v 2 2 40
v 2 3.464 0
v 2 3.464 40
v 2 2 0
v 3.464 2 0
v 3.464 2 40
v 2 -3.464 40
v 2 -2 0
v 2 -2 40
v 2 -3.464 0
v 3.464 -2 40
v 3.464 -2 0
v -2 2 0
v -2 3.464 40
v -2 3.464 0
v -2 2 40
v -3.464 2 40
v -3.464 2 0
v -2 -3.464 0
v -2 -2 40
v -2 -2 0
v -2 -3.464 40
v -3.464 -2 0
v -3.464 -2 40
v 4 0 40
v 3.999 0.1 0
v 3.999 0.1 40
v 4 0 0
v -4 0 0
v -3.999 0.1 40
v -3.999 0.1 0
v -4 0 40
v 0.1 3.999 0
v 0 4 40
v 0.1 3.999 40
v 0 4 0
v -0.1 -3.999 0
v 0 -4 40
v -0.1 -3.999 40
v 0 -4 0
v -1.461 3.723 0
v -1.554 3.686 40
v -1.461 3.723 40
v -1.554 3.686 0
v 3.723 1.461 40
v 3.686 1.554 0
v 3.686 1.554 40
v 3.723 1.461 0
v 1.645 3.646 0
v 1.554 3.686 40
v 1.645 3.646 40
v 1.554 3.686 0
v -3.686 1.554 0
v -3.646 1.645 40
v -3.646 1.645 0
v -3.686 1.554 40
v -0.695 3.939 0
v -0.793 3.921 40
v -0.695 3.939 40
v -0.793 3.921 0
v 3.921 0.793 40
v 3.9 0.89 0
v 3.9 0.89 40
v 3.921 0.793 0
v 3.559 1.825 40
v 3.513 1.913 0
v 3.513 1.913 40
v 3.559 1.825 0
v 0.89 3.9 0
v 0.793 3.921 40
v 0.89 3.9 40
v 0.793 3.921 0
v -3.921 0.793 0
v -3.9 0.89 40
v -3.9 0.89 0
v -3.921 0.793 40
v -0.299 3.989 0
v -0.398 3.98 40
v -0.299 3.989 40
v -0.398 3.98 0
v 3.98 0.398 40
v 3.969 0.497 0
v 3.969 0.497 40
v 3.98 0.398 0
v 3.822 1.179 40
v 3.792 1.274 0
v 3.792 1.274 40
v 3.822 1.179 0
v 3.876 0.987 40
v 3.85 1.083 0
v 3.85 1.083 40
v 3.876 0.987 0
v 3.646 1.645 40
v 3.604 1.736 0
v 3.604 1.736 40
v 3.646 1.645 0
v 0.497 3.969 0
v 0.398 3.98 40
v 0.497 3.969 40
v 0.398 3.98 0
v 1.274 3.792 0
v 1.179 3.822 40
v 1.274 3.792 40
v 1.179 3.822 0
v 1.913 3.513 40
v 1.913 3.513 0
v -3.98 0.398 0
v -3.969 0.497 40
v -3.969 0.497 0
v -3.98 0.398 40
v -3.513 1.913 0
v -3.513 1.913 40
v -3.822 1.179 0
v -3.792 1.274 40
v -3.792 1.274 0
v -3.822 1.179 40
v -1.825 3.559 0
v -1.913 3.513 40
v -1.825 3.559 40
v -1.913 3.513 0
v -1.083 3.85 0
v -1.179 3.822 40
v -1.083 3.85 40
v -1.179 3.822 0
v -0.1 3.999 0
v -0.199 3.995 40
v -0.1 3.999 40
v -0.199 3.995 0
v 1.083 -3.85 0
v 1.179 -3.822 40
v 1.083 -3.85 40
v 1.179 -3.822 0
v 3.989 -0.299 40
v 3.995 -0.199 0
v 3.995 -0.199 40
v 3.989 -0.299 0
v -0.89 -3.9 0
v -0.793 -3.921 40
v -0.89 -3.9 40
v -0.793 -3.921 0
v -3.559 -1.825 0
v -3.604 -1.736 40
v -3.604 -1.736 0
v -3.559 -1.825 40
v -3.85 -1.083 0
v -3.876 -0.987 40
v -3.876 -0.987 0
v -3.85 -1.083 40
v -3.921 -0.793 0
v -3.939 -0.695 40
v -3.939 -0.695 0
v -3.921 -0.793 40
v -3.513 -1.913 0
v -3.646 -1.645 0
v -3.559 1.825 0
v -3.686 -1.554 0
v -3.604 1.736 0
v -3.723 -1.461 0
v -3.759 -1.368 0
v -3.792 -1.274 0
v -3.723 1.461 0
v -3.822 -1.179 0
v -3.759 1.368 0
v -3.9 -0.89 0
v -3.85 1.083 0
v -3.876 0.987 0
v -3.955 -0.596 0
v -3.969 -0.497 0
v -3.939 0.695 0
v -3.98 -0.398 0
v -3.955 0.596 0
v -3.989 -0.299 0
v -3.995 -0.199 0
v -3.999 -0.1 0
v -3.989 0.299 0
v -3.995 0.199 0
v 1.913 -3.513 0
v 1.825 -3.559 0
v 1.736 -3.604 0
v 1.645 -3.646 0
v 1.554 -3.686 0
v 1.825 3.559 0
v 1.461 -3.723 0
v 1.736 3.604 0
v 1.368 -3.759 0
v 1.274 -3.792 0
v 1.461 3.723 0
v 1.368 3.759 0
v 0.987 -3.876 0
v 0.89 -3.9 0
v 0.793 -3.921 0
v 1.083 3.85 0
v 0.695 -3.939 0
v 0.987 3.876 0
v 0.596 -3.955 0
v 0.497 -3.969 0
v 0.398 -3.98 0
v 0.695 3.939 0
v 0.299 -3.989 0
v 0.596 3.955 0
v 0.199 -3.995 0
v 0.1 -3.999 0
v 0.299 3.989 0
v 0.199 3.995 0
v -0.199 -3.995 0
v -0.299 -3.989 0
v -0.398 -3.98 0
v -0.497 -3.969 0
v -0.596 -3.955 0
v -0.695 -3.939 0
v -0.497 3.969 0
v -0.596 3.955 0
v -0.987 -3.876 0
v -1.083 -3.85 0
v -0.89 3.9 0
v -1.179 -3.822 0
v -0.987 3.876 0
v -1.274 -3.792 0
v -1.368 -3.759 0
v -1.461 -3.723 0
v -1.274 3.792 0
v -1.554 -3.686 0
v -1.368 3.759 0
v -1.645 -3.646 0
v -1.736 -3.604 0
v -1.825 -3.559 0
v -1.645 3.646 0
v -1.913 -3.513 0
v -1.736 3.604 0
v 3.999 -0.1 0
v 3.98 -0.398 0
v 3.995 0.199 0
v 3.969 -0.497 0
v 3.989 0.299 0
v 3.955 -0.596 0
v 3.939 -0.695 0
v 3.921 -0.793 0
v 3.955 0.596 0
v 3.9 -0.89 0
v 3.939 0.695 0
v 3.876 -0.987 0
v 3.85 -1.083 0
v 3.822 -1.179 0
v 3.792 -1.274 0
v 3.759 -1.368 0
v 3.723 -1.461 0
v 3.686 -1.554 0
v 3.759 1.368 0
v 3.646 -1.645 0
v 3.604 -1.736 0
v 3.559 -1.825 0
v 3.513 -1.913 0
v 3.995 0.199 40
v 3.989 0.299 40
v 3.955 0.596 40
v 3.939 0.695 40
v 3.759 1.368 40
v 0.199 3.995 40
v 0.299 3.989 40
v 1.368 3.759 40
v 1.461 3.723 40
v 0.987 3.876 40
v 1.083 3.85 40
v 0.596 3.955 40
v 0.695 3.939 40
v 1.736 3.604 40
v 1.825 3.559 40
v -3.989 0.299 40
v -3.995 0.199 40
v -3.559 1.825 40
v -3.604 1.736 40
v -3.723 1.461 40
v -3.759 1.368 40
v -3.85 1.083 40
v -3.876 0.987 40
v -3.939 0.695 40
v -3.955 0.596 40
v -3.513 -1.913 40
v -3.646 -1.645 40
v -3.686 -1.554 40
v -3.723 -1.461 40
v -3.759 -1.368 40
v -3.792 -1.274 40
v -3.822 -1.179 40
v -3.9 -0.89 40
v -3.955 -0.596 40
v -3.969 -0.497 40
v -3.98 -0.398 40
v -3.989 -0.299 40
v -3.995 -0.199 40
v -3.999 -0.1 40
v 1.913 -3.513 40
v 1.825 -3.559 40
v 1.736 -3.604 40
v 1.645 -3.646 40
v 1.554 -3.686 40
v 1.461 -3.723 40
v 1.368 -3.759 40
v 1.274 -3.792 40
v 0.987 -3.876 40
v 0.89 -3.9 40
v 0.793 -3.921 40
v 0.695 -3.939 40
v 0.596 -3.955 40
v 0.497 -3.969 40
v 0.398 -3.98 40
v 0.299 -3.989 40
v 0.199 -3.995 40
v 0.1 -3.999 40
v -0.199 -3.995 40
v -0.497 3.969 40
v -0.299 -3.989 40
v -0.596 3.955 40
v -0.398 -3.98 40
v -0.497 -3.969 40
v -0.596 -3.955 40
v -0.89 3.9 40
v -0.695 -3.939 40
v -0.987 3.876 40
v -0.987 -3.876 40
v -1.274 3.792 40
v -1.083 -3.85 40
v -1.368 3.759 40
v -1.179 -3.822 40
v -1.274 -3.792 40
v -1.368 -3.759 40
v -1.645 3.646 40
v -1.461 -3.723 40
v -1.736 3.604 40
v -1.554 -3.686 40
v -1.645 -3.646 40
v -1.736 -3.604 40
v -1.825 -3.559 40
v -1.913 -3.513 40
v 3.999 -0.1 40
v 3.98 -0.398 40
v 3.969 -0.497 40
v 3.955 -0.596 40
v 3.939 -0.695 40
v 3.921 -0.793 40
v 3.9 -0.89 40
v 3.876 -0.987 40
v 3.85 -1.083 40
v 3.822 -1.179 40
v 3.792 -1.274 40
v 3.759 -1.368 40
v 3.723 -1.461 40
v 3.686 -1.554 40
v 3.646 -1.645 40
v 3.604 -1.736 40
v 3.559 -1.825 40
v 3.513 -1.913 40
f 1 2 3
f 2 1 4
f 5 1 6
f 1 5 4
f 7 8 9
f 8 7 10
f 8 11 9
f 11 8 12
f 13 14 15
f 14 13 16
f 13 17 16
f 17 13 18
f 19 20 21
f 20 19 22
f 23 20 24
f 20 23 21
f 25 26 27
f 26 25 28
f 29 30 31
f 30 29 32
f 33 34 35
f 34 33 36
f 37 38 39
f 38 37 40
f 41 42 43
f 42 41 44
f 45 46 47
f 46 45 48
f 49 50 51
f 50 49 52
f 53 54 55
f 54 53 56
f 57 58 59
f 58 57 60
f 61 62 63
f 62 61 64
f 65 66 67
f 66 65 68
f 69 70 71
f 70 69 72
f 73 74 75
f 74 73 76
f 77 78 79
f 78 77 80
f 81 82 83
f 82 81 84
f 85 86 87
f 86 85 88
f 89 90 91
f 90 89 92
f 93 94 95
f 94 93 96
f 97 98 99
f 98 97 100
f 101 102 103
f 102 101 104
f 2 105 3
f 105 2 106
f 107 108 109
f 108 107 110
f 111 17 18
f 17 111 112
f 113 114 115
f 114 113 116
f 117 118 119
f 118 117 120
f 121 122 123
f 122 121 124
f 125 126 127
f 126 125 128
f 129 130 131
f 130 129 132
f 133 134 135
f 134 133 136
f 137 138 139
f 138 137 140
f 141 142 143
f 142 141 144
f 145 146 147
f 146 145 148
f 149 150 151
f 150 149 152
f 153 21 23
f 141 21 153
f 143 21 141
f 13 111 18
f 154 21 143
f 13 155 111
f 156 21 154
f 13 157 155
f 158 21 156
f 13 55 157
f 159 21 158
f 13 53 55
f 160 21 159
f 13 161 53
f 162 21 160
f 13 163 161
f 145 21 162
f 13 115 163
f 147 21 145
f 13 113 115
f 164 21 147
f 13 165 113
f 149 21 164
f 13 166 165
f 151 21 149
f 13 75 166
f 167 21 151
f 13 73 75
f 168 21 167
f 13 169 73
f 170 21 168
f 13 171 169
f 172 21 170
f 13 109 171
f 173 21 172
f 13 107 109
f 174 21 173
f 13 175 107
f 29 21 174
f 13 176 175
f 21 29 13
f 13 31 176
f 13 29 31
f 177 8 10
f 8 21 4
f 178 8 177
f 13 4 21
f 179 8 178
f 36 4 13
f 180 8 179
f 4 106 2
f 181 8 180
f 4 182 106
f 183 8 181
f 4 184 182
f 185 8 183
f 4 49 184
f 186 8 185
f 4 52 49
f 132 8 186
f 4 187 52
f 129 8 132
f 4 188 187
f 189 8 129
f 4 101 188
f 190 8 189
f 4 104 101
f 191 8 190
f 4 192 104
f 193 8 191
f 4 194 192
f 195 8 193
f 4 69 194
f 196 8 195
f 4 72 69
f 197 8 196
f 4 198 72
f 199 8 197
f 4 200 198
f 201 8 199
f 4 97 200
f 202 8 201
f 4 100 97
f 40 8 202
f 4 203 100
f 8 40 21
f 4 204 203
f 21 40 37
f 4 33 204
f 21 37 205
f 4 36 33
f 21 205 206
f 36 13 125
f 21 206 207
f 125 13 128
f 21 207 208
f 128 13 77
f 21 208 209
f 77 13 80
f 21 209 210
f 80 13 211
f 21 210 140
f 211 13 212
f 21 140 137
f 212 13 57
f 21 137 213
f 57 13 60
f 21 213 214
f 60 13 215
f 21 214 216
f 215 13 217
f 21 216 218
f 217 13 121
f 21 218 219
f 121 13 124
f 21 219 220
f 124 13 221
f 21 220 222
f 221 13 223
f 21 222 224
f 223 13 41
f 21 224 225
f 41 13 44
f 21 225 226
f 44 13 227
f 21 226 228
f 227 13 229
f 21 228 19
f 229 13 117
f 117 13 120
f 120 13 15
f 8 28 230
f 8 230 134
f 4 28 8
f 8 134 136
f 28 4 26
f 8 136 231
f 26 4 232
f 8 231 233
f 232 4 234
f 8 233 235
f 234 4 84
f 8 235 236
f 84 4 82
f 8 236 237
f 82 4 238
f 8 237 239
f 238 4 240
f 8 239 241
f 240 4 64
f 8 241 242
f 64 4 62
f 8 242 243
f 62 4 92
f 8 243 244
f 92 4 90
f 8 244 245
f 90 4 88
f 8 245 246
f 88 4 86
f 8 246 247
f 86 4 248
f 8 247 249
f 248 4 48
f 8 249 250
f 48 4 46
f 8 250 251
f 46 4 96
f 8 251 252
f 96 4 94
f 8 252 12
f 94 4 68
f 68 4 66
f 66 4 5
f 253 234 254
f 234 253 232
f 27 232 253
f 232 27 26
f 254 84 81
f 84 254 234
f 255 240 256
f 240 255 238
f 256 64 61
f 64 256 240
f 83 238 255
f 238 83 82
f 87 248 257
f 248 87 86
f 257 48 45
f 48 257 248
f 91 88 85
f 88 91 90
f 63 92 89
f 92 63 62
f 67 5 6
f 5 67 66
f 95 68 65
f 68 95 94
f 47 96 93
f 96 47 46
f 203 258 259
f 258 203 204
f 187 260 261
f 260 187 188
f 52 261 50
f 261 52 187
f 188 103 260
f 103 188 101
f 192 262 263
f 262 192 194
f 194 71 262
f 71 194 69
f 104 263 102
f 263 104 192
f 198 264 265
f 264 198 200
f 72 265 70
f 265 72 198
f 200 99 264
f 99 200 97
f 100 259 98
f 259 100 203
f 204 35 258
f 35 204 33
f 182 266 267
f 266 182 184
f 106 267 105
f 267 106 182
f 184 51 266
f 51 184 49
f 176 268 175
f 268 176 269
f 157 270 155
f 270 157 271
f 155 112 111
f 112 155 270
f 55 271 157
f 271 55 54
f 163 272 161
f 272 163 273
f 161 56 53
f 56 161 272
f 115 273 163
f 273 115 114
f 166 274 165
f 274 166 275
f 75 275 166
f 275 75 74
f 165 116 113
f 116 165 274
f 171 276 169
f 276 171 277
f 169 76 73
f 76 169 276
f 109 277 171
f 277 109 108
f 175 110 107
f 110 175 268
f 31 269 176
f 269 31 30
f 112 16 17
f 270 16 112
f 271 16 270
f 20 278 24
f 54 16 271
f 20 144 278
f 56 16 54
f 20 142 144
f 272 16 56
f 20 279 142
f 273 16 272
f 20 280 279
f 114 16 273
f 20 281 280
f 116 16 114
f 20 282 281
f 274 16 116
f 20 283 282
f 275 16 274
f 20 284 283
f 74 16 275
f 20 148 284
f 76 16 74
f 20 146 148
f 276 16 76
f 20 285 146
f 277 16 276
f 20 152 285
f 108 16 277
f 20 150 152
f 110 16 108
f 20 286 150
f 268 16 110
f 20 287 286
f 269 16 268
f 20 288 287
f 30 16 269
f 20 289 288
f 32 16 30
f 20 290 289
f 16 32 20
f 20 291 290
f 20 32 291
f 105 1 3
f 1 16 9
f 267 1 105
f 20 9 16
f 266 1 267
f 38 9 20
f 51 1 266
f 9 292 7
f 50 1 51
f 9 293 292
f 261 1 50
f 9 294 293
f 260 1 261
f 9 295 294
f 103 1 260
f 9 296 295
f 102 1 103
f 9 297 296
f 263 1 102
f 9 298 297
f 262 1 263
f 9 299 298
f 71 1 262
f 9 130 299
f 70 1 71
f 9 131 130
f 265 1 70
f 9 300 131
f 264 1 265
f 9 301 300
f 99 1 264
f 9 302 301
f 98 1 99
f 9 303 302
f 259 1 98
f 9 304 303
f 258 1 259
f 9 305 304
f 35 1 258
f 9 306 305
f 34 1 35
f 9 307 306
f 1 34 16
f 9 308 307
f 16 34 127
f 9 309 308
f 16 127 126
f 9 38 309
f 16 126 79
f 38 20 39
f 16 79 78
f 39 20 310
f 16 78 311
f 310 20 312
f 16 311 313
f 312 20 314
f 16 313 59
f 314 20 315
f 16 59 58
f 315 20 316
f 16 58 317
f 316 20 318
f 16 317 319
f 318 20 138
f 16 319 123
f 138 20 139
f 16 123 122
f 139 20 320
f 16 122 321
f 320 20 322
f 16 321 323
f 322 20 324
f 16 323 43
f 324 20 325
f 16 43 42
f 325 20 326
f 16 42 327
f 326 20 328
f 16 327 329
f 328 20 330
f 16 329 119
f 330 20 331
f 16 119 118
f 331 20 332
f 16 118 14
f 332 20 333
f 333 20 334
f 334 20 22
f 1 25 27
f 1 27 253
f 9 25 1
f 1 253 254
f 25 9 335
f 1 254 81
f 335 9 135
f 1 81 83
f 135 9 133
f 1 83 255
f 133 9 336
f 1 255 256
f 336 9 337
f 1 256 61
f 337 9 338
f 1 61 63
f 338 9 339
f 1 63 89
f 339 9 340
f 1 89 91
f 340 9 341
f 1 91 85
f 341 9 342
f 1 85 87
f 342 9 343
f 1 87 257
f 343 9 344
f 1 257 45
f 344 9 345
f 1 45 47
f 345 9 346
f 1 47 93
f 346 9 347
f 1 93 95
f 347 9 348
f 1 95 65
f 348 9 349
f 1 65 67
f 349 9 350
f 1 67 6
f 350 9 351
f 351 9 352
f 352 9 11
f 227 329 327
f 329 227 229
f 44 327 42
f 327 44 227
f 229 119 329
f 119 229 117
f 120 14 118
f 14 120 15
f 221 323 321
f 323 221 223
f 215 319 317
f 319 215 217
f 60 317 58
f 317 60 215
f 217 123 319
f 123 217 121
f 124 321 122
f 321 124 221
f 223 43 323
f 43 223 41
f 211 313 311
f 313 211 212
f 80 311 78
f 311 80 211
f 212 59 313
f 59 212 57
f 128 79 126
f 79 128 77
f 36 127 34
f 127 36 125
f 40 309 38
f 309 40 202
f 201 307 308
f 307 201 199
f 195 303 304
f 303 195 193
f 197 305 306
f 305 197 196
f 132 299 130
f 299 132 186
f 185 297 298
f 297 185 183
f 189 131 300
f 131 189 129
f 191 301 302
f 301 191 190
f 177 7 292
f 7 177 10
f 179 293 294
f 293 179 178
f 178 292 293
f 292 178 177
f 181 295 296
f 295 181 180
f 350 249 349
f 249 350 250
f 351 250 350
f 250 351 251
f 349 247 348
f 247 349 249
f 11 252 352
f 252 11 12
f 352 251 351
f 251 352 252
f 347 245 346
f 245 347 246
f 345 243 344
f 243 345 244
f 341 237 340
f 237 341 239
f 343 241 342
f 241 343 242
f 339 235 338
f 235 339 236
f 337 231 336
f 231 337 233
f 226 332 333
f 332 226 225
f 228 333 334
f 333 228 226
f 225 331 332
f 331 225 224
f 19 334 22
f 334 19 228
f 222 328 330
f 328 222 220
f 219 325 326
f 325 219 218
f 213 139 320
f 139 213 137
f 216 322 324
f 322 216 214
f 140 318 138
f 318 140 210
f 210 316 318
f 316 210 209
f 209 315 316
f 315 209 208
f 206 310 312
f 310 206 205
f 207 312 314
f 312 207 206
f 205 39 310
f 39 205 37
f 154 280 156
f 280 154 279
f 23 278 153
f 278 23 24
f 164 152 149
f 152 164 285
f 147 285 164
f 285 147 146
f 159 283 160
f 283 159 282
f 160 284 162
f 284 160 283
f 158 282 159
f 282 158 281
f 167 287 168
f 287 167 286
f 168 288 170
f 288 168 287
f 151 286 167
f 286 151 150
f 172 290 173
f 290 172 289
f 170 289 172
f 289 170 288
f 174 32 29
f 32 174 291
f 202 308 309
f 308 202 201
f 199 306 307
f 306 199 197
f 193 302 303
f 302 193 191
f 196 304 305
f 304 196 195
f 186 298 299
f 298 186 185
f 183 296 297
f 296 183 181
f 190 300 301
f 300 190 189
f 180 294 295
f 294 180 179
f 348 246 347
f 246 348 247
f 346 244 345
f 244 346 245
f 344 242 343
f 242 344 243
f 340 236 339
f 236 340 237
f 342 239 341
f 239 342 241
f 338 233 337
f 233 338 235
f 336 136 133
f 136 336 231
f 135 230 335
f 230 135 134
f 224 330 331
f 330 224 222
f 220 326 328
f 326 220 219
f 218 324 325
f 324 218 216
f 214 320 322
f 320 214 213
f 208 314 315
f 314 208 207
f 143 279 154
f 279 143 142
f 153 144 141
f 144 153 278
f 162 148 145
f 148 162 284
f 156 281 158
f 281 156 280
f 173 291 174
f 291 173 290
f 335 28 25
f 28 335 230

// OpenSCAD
$fa=0.1;
$fs=0.1;

module axis(l,r) {
  rp=r/2;
  rn=-(r+r/2); 
  difference() {
    cylinder(l,r,r);
    union() {
      translate([rp,rp,-1]) cube([r,r,l+2]);
      translate([rp,rn,-1]) cube([r,r,l+2]);
      translate([rn,rp,-1]) cube([r,r,l+2]);
      translate([rn,rn,-1]) cube([r,r,l+2]);
    }
  }
}

axis(40,4);
